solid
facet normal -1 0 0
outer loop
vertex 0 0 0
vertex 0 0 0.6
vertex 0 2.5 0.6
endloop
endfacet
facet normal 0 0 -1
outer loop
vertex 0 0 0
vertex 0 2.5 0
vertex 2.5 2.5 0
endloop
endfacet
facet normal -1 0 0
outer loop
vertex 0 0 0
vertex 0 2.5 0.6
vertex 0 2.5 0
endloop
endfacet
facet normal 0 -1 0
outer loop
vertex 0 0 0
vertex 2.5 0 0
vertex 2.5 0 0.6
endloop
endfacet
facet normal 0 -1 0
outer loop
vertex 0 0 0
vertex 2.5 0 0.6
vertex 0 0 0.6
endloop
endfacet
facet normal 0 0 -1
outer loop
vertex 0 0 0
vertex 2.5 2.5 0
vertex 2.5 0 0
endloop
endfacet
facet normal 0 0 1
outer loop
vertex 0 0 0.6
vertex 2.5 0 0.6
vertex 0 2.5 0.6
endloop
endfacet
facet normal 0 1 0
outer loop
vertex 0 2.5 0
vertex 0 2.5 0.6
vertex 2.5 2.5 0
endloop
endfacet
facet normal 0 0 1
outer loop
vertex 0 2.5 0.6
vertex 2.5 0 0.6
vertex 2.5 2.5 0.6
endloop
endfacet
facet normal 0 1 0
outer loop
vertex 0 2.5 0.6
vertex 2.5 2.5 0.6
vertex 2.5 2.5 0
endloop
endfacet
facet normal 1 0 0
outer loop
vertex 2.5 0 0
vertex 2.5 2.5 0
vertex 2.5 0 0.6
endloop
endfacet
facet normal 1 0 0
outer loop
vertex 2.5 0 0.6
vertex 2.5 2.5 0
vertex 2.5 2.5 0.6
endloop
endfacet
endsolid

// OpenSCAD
/* Warning, this is a very basic generator with a lot of approximation 
input data : [UDFN, HRA, 2.5x2.5x0.6mm, 12, , A, C04-01162A]
generated by com.zoubworld.electronics.cad.model3d.Basic
Date : Sun Feb 15 10:50:49 CET 2026
*/

//body
color("black")
translate([0,0,0])
cube([2.5,2.5,0.6], center=false);
